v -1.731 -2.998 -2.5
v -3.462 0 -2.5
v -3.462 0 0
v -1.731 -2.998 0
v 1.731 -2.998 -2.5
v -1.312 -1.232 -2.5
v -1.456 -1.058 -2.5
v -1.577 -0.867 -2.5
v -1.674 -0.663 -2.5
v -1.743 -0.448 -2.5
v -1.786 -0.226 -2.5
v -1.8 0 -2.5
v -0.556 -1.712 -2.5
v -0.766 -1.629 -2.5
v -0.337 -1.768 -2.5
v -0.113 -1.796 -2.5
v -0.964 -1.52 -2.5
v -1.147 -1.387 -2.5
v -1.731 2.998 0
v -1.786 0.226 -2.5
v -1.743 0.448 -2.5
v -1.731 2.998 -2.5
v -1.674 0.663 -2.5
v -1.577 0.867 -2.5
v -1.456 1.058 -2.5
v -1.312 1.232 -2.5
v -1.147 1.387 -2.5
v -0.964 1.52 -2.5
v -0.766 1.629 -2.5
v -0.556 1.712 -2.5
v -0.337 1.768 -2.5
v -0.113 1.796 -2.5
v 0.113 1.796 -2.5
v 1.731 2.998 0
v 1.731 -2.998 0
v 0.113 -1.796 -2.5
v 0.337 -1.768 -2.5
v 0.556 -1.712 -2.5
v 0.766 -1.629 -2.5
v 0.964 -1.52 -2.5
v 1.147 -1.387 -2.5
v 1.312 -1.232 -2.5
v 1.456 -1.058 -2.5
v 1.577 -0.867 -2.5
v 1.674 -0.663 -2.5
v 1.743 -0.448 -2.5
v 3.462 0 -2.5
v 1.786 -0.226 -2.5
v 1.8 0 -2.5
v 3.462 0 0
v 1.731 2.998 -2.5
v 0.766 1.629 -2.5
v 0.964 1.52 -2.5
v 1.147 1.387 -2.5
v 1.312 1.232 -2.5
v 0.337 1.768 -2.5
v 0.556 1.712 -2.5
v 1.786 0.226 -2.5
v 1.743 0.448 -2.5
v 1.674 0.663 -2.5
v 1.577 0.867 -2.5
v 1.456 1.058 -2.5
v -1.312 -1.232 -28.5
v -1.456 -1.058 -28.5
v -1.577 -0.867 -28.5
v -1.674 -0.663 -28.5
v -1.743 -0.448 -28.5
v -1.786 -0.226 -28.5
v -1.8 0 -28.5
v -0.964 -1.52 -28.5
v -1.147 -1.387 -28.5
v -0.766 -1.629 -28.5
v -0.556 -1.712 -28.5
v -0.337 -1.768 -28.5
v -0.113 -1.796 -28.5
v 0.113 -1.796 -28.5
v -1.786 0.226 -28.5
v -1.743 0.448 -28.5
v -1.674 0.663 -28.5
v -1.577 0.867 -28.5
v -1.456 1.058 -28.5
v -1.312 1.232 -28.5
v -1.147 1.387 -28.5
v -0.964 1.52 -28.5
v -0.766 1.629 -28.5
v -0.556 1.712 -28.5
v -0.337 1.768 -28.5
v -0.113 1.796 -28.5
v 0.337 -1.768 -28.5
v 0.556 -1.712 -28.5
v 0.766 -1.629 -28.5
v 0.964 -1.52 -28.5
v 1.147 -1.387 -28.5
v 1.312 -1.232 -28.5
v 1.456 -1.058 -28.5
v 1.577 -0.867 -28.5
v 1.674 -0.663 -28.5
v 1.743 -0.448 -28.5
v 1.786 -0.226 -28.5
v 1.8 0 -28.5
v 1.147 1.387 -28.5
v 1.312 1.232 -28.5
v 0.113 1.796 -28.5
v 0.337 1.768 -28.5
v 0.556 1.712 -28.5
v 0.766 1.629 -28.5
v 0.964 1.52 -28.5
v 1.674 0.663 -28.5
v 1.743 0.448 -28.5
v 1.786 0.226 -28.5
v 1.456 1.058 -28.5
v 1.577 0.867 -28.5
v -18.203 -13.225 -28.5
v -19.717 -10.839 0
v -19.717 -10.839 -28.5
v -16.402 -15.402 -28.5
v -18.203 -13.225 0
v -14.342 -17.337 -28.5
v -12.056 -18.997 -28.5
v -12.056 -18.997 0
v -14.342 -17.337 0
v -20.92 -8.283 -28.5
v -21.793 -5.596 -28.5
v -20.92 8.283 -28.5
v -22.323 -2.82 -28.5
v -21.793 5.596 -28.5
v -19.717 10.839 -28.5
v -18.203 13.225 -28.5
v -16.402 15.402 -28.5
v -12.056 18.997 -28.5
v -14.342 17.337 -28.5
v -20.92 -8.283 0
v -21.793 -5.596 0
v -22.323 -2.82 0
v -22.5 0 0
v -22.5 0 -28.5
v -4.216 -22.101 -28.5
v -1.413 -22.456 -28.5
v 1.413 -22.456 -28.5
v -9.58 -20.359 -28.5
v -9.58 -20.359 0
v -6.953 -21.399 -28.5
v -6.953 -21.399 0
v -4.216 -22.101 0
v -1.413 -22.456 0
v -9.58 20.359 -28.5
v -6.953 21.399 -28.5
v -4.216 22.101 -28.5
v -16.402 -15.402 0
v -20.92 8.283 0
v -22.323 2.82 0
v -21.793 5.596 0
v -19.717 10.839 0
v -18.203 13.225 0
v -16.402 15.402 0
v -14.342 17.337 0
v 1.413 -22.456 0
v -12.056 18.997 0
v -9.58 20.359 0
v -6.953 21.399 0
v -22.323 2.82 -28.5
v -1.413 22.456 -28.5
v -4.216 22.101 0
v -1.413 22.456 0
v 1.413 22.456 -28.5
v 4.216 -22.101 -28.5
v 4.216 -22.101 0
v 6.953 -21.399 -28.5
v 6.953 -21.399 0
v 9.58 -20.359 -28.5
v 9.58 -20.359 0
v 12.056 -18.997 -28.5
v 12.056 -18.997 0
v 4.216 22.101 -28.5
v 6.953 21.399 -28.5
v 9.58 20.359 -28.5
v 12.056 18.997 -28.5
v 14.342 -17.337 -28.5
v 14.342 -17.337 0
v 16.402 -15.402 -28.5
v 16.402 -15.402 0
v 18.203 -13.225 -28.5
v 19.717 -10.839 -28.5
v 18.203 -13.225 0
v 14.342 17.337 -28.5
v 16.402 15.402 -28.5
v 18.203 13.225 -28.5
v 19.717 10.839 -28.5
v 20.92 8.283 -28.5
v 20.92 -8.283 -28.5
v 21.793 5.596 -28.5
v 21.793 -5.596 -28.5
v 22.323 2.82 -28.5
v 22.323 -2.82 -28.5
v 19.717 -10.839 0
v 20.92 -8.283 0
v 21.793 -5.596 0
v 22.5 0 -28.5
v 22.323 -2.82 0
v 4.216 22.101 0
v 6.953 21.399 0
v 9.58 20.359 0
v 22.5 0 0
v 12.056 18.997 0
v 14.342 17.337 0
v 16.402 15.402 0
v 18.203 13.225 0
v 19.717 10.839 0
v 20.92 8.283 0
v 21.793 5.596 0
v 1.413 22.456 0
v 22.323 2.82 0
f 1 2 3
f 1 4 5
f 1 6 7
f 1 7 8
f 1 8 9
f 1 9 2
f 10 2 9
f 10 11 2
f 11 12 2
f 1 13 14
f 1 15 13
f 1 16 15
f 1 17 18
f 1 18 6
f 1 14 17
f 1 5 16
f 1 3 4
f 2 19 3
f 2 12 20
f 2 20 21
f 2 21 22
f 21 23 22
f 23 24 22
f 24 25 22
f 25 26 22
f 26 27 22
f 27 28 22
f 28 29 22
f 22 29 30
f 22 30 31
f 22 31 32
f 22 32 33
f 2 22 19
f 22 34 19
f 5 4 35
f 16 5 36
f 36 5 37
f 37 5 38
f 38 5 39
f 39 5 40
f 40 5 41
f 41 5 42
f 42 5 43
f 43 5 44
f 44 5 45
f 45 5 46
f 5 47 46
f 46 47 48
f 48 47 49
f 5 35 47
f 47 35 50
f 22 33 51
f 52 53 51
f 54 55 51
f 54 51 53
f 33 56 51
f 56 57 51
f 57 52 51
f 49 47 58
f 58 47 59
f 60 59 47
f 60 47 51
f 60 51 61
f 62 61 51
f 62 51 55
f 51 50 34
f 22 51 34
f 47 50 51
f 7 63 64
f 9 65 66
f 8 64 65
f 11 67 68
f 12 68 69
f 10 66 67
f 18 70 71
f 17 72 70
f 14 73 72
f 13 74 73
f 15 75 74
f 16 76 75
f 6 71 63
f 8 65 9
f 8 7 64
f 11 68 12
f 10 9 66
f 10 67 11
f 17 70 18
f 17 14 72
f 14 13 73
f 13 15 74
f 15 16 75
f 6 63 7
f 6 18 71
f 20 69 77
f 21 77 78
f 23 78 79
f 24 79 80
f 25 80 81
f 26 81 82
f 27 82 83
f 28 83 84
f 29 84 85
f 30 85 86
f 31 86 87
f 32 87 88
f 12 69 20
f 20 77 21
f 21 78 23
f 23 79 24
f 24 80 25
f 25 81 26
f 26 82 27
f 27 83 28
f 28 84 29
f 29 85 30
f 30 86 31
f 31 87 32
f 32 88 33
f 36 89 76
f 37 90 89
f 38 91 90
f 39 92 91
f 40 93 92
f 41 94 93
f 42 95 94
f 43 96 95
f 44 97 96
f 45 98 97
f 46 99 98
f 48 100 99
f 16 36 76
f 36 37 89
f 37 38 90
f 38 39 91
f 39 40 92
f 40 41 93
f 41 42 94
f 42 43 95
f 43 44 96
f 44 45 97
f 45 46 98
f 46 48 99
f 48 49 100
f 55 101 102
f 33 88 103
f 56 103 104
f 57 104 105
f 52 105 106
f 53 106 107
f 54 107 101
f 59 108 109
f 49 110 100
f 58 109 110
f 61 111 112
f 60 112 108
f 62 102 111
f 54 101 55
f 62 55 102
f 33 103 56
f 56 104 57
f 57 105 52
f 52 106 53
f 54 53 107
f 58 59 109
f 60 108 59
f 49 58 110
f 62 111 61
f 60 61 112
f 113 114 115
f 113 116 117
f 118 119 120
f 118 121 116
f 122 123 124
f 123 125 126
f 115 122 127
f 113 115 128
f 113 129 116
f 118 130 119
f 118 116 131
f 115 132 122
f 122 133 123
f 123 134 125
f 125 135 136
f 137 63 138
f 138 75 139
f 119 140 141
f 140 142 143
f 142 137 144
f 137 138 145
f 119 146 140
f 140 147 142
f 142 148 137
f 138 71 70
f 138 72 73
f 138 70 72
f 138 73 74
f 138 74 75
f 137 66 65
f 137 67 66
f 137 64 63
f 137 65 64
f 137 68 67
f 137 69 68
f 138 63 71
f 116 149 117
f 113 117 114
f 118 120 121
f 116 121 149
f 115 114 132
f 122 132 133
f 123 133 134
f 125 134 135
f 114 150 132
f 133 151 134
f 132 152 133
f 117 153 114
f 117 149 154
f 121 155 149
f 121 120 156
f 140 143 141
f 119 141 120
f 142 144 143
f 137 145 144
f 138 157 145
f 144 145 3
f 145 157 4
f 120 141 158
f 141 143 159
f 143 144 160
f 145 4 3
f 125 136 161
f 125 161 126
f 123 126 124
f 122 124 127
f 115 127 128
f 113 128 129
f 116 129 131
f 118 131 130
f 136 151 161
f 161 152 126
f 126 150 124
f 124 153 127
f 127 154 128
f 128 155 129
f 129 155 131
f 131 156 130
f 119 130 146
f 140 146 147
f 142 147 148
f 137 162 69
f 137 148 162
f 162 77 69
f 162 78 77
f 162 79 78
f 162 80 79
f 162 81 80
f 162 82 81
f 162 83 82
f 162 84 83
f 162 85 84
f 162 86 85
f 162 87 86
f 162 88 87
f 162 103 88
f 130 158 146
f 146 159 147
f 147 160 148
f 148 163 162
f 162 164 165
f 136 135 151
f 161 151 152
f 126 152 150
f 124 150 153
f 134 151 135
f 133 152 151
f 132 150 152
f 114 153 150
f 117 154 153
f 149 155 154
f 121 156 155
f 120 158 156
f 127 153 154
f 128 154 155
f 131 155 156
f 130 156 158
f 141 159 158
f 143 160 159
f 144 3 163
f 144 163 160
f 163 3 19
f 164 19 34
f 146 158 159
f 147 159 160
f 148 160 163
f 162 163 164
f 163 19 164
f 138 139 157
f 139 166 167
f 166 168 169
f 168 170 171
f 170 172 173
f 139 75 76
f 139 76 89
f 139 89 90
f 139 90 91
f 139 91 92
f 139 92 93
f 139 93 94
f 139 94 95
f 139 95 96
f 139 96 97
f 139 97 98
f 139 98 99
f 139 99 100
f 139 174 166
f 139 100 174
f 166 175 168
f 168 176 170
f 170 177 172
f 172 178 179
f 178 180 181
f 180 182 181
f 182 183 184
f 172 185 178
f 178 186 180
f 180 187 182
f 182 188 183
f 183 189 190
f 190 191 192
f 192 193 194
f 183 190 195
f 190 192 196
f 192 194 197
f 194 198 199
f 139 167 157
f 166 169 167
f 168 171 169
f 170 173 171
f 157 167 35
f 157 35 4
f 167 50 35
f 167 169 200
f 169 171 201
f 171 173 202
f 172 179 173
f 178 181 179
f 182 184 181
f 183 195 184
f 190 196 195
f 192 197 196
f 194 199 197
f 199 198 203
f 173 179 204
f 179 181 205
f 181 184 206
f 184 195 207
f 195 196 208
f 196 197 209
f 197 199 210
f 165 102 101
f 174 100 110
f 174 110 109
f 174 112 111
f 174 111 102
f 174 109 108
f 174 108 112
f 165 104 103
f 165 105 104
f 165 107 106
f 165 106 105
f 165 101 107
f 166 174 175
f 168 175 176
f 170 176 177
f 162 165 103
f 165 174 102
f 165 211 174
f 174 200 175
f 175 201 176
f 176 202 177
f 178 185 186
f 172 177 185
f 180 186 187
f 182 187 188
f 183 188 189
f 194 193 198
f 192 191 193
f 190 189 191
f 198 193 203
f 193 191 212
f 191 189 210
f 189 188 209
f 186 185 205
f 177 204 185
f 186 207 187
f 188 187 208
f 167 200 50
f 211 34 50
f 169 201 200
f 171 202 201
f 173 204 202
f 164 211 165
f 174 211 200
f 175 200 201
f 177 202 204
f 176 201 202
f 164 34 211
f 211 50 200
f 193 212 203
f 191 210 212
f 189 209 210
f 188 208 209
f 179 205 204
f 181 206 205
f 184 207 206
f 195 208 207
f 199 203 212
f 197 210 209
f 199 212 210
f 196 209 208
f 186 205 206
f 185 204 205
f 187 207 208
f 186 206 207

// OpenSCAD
$fn = 50;

difference() {
	union() {
		translate(v = [0, 0, -28.5]) {
			cylinder(h = 28.5, r = 22.5);
		}
	}
	union() {
		translate(v = [0, 0, 0]) {
			rotate(a = [0, 0, 0]) {
				difference() {
					union() {
						translate(v = [0, 0, -2.5]) {
							linear_extrude(height = 2.5) {
								polygon(points = [[3.4619999999999997, 0.0], [1.7310000000000003, 2.9981799479017264], [-1.7309999999999992, 2.9981799479017264], [-3.4619999999999997, 4.2397272186481365e-16], [-1.7310000000000014, -2.998179947901726], [1.7309999999999977, -2.9981799479017277]]);
							}
						}
					}
					union();
				}
			}
		}
		#translate(v = [0, 0, -100.0]) {
			cylinder(h = 200, r = 1.8);
		}
	}
}
